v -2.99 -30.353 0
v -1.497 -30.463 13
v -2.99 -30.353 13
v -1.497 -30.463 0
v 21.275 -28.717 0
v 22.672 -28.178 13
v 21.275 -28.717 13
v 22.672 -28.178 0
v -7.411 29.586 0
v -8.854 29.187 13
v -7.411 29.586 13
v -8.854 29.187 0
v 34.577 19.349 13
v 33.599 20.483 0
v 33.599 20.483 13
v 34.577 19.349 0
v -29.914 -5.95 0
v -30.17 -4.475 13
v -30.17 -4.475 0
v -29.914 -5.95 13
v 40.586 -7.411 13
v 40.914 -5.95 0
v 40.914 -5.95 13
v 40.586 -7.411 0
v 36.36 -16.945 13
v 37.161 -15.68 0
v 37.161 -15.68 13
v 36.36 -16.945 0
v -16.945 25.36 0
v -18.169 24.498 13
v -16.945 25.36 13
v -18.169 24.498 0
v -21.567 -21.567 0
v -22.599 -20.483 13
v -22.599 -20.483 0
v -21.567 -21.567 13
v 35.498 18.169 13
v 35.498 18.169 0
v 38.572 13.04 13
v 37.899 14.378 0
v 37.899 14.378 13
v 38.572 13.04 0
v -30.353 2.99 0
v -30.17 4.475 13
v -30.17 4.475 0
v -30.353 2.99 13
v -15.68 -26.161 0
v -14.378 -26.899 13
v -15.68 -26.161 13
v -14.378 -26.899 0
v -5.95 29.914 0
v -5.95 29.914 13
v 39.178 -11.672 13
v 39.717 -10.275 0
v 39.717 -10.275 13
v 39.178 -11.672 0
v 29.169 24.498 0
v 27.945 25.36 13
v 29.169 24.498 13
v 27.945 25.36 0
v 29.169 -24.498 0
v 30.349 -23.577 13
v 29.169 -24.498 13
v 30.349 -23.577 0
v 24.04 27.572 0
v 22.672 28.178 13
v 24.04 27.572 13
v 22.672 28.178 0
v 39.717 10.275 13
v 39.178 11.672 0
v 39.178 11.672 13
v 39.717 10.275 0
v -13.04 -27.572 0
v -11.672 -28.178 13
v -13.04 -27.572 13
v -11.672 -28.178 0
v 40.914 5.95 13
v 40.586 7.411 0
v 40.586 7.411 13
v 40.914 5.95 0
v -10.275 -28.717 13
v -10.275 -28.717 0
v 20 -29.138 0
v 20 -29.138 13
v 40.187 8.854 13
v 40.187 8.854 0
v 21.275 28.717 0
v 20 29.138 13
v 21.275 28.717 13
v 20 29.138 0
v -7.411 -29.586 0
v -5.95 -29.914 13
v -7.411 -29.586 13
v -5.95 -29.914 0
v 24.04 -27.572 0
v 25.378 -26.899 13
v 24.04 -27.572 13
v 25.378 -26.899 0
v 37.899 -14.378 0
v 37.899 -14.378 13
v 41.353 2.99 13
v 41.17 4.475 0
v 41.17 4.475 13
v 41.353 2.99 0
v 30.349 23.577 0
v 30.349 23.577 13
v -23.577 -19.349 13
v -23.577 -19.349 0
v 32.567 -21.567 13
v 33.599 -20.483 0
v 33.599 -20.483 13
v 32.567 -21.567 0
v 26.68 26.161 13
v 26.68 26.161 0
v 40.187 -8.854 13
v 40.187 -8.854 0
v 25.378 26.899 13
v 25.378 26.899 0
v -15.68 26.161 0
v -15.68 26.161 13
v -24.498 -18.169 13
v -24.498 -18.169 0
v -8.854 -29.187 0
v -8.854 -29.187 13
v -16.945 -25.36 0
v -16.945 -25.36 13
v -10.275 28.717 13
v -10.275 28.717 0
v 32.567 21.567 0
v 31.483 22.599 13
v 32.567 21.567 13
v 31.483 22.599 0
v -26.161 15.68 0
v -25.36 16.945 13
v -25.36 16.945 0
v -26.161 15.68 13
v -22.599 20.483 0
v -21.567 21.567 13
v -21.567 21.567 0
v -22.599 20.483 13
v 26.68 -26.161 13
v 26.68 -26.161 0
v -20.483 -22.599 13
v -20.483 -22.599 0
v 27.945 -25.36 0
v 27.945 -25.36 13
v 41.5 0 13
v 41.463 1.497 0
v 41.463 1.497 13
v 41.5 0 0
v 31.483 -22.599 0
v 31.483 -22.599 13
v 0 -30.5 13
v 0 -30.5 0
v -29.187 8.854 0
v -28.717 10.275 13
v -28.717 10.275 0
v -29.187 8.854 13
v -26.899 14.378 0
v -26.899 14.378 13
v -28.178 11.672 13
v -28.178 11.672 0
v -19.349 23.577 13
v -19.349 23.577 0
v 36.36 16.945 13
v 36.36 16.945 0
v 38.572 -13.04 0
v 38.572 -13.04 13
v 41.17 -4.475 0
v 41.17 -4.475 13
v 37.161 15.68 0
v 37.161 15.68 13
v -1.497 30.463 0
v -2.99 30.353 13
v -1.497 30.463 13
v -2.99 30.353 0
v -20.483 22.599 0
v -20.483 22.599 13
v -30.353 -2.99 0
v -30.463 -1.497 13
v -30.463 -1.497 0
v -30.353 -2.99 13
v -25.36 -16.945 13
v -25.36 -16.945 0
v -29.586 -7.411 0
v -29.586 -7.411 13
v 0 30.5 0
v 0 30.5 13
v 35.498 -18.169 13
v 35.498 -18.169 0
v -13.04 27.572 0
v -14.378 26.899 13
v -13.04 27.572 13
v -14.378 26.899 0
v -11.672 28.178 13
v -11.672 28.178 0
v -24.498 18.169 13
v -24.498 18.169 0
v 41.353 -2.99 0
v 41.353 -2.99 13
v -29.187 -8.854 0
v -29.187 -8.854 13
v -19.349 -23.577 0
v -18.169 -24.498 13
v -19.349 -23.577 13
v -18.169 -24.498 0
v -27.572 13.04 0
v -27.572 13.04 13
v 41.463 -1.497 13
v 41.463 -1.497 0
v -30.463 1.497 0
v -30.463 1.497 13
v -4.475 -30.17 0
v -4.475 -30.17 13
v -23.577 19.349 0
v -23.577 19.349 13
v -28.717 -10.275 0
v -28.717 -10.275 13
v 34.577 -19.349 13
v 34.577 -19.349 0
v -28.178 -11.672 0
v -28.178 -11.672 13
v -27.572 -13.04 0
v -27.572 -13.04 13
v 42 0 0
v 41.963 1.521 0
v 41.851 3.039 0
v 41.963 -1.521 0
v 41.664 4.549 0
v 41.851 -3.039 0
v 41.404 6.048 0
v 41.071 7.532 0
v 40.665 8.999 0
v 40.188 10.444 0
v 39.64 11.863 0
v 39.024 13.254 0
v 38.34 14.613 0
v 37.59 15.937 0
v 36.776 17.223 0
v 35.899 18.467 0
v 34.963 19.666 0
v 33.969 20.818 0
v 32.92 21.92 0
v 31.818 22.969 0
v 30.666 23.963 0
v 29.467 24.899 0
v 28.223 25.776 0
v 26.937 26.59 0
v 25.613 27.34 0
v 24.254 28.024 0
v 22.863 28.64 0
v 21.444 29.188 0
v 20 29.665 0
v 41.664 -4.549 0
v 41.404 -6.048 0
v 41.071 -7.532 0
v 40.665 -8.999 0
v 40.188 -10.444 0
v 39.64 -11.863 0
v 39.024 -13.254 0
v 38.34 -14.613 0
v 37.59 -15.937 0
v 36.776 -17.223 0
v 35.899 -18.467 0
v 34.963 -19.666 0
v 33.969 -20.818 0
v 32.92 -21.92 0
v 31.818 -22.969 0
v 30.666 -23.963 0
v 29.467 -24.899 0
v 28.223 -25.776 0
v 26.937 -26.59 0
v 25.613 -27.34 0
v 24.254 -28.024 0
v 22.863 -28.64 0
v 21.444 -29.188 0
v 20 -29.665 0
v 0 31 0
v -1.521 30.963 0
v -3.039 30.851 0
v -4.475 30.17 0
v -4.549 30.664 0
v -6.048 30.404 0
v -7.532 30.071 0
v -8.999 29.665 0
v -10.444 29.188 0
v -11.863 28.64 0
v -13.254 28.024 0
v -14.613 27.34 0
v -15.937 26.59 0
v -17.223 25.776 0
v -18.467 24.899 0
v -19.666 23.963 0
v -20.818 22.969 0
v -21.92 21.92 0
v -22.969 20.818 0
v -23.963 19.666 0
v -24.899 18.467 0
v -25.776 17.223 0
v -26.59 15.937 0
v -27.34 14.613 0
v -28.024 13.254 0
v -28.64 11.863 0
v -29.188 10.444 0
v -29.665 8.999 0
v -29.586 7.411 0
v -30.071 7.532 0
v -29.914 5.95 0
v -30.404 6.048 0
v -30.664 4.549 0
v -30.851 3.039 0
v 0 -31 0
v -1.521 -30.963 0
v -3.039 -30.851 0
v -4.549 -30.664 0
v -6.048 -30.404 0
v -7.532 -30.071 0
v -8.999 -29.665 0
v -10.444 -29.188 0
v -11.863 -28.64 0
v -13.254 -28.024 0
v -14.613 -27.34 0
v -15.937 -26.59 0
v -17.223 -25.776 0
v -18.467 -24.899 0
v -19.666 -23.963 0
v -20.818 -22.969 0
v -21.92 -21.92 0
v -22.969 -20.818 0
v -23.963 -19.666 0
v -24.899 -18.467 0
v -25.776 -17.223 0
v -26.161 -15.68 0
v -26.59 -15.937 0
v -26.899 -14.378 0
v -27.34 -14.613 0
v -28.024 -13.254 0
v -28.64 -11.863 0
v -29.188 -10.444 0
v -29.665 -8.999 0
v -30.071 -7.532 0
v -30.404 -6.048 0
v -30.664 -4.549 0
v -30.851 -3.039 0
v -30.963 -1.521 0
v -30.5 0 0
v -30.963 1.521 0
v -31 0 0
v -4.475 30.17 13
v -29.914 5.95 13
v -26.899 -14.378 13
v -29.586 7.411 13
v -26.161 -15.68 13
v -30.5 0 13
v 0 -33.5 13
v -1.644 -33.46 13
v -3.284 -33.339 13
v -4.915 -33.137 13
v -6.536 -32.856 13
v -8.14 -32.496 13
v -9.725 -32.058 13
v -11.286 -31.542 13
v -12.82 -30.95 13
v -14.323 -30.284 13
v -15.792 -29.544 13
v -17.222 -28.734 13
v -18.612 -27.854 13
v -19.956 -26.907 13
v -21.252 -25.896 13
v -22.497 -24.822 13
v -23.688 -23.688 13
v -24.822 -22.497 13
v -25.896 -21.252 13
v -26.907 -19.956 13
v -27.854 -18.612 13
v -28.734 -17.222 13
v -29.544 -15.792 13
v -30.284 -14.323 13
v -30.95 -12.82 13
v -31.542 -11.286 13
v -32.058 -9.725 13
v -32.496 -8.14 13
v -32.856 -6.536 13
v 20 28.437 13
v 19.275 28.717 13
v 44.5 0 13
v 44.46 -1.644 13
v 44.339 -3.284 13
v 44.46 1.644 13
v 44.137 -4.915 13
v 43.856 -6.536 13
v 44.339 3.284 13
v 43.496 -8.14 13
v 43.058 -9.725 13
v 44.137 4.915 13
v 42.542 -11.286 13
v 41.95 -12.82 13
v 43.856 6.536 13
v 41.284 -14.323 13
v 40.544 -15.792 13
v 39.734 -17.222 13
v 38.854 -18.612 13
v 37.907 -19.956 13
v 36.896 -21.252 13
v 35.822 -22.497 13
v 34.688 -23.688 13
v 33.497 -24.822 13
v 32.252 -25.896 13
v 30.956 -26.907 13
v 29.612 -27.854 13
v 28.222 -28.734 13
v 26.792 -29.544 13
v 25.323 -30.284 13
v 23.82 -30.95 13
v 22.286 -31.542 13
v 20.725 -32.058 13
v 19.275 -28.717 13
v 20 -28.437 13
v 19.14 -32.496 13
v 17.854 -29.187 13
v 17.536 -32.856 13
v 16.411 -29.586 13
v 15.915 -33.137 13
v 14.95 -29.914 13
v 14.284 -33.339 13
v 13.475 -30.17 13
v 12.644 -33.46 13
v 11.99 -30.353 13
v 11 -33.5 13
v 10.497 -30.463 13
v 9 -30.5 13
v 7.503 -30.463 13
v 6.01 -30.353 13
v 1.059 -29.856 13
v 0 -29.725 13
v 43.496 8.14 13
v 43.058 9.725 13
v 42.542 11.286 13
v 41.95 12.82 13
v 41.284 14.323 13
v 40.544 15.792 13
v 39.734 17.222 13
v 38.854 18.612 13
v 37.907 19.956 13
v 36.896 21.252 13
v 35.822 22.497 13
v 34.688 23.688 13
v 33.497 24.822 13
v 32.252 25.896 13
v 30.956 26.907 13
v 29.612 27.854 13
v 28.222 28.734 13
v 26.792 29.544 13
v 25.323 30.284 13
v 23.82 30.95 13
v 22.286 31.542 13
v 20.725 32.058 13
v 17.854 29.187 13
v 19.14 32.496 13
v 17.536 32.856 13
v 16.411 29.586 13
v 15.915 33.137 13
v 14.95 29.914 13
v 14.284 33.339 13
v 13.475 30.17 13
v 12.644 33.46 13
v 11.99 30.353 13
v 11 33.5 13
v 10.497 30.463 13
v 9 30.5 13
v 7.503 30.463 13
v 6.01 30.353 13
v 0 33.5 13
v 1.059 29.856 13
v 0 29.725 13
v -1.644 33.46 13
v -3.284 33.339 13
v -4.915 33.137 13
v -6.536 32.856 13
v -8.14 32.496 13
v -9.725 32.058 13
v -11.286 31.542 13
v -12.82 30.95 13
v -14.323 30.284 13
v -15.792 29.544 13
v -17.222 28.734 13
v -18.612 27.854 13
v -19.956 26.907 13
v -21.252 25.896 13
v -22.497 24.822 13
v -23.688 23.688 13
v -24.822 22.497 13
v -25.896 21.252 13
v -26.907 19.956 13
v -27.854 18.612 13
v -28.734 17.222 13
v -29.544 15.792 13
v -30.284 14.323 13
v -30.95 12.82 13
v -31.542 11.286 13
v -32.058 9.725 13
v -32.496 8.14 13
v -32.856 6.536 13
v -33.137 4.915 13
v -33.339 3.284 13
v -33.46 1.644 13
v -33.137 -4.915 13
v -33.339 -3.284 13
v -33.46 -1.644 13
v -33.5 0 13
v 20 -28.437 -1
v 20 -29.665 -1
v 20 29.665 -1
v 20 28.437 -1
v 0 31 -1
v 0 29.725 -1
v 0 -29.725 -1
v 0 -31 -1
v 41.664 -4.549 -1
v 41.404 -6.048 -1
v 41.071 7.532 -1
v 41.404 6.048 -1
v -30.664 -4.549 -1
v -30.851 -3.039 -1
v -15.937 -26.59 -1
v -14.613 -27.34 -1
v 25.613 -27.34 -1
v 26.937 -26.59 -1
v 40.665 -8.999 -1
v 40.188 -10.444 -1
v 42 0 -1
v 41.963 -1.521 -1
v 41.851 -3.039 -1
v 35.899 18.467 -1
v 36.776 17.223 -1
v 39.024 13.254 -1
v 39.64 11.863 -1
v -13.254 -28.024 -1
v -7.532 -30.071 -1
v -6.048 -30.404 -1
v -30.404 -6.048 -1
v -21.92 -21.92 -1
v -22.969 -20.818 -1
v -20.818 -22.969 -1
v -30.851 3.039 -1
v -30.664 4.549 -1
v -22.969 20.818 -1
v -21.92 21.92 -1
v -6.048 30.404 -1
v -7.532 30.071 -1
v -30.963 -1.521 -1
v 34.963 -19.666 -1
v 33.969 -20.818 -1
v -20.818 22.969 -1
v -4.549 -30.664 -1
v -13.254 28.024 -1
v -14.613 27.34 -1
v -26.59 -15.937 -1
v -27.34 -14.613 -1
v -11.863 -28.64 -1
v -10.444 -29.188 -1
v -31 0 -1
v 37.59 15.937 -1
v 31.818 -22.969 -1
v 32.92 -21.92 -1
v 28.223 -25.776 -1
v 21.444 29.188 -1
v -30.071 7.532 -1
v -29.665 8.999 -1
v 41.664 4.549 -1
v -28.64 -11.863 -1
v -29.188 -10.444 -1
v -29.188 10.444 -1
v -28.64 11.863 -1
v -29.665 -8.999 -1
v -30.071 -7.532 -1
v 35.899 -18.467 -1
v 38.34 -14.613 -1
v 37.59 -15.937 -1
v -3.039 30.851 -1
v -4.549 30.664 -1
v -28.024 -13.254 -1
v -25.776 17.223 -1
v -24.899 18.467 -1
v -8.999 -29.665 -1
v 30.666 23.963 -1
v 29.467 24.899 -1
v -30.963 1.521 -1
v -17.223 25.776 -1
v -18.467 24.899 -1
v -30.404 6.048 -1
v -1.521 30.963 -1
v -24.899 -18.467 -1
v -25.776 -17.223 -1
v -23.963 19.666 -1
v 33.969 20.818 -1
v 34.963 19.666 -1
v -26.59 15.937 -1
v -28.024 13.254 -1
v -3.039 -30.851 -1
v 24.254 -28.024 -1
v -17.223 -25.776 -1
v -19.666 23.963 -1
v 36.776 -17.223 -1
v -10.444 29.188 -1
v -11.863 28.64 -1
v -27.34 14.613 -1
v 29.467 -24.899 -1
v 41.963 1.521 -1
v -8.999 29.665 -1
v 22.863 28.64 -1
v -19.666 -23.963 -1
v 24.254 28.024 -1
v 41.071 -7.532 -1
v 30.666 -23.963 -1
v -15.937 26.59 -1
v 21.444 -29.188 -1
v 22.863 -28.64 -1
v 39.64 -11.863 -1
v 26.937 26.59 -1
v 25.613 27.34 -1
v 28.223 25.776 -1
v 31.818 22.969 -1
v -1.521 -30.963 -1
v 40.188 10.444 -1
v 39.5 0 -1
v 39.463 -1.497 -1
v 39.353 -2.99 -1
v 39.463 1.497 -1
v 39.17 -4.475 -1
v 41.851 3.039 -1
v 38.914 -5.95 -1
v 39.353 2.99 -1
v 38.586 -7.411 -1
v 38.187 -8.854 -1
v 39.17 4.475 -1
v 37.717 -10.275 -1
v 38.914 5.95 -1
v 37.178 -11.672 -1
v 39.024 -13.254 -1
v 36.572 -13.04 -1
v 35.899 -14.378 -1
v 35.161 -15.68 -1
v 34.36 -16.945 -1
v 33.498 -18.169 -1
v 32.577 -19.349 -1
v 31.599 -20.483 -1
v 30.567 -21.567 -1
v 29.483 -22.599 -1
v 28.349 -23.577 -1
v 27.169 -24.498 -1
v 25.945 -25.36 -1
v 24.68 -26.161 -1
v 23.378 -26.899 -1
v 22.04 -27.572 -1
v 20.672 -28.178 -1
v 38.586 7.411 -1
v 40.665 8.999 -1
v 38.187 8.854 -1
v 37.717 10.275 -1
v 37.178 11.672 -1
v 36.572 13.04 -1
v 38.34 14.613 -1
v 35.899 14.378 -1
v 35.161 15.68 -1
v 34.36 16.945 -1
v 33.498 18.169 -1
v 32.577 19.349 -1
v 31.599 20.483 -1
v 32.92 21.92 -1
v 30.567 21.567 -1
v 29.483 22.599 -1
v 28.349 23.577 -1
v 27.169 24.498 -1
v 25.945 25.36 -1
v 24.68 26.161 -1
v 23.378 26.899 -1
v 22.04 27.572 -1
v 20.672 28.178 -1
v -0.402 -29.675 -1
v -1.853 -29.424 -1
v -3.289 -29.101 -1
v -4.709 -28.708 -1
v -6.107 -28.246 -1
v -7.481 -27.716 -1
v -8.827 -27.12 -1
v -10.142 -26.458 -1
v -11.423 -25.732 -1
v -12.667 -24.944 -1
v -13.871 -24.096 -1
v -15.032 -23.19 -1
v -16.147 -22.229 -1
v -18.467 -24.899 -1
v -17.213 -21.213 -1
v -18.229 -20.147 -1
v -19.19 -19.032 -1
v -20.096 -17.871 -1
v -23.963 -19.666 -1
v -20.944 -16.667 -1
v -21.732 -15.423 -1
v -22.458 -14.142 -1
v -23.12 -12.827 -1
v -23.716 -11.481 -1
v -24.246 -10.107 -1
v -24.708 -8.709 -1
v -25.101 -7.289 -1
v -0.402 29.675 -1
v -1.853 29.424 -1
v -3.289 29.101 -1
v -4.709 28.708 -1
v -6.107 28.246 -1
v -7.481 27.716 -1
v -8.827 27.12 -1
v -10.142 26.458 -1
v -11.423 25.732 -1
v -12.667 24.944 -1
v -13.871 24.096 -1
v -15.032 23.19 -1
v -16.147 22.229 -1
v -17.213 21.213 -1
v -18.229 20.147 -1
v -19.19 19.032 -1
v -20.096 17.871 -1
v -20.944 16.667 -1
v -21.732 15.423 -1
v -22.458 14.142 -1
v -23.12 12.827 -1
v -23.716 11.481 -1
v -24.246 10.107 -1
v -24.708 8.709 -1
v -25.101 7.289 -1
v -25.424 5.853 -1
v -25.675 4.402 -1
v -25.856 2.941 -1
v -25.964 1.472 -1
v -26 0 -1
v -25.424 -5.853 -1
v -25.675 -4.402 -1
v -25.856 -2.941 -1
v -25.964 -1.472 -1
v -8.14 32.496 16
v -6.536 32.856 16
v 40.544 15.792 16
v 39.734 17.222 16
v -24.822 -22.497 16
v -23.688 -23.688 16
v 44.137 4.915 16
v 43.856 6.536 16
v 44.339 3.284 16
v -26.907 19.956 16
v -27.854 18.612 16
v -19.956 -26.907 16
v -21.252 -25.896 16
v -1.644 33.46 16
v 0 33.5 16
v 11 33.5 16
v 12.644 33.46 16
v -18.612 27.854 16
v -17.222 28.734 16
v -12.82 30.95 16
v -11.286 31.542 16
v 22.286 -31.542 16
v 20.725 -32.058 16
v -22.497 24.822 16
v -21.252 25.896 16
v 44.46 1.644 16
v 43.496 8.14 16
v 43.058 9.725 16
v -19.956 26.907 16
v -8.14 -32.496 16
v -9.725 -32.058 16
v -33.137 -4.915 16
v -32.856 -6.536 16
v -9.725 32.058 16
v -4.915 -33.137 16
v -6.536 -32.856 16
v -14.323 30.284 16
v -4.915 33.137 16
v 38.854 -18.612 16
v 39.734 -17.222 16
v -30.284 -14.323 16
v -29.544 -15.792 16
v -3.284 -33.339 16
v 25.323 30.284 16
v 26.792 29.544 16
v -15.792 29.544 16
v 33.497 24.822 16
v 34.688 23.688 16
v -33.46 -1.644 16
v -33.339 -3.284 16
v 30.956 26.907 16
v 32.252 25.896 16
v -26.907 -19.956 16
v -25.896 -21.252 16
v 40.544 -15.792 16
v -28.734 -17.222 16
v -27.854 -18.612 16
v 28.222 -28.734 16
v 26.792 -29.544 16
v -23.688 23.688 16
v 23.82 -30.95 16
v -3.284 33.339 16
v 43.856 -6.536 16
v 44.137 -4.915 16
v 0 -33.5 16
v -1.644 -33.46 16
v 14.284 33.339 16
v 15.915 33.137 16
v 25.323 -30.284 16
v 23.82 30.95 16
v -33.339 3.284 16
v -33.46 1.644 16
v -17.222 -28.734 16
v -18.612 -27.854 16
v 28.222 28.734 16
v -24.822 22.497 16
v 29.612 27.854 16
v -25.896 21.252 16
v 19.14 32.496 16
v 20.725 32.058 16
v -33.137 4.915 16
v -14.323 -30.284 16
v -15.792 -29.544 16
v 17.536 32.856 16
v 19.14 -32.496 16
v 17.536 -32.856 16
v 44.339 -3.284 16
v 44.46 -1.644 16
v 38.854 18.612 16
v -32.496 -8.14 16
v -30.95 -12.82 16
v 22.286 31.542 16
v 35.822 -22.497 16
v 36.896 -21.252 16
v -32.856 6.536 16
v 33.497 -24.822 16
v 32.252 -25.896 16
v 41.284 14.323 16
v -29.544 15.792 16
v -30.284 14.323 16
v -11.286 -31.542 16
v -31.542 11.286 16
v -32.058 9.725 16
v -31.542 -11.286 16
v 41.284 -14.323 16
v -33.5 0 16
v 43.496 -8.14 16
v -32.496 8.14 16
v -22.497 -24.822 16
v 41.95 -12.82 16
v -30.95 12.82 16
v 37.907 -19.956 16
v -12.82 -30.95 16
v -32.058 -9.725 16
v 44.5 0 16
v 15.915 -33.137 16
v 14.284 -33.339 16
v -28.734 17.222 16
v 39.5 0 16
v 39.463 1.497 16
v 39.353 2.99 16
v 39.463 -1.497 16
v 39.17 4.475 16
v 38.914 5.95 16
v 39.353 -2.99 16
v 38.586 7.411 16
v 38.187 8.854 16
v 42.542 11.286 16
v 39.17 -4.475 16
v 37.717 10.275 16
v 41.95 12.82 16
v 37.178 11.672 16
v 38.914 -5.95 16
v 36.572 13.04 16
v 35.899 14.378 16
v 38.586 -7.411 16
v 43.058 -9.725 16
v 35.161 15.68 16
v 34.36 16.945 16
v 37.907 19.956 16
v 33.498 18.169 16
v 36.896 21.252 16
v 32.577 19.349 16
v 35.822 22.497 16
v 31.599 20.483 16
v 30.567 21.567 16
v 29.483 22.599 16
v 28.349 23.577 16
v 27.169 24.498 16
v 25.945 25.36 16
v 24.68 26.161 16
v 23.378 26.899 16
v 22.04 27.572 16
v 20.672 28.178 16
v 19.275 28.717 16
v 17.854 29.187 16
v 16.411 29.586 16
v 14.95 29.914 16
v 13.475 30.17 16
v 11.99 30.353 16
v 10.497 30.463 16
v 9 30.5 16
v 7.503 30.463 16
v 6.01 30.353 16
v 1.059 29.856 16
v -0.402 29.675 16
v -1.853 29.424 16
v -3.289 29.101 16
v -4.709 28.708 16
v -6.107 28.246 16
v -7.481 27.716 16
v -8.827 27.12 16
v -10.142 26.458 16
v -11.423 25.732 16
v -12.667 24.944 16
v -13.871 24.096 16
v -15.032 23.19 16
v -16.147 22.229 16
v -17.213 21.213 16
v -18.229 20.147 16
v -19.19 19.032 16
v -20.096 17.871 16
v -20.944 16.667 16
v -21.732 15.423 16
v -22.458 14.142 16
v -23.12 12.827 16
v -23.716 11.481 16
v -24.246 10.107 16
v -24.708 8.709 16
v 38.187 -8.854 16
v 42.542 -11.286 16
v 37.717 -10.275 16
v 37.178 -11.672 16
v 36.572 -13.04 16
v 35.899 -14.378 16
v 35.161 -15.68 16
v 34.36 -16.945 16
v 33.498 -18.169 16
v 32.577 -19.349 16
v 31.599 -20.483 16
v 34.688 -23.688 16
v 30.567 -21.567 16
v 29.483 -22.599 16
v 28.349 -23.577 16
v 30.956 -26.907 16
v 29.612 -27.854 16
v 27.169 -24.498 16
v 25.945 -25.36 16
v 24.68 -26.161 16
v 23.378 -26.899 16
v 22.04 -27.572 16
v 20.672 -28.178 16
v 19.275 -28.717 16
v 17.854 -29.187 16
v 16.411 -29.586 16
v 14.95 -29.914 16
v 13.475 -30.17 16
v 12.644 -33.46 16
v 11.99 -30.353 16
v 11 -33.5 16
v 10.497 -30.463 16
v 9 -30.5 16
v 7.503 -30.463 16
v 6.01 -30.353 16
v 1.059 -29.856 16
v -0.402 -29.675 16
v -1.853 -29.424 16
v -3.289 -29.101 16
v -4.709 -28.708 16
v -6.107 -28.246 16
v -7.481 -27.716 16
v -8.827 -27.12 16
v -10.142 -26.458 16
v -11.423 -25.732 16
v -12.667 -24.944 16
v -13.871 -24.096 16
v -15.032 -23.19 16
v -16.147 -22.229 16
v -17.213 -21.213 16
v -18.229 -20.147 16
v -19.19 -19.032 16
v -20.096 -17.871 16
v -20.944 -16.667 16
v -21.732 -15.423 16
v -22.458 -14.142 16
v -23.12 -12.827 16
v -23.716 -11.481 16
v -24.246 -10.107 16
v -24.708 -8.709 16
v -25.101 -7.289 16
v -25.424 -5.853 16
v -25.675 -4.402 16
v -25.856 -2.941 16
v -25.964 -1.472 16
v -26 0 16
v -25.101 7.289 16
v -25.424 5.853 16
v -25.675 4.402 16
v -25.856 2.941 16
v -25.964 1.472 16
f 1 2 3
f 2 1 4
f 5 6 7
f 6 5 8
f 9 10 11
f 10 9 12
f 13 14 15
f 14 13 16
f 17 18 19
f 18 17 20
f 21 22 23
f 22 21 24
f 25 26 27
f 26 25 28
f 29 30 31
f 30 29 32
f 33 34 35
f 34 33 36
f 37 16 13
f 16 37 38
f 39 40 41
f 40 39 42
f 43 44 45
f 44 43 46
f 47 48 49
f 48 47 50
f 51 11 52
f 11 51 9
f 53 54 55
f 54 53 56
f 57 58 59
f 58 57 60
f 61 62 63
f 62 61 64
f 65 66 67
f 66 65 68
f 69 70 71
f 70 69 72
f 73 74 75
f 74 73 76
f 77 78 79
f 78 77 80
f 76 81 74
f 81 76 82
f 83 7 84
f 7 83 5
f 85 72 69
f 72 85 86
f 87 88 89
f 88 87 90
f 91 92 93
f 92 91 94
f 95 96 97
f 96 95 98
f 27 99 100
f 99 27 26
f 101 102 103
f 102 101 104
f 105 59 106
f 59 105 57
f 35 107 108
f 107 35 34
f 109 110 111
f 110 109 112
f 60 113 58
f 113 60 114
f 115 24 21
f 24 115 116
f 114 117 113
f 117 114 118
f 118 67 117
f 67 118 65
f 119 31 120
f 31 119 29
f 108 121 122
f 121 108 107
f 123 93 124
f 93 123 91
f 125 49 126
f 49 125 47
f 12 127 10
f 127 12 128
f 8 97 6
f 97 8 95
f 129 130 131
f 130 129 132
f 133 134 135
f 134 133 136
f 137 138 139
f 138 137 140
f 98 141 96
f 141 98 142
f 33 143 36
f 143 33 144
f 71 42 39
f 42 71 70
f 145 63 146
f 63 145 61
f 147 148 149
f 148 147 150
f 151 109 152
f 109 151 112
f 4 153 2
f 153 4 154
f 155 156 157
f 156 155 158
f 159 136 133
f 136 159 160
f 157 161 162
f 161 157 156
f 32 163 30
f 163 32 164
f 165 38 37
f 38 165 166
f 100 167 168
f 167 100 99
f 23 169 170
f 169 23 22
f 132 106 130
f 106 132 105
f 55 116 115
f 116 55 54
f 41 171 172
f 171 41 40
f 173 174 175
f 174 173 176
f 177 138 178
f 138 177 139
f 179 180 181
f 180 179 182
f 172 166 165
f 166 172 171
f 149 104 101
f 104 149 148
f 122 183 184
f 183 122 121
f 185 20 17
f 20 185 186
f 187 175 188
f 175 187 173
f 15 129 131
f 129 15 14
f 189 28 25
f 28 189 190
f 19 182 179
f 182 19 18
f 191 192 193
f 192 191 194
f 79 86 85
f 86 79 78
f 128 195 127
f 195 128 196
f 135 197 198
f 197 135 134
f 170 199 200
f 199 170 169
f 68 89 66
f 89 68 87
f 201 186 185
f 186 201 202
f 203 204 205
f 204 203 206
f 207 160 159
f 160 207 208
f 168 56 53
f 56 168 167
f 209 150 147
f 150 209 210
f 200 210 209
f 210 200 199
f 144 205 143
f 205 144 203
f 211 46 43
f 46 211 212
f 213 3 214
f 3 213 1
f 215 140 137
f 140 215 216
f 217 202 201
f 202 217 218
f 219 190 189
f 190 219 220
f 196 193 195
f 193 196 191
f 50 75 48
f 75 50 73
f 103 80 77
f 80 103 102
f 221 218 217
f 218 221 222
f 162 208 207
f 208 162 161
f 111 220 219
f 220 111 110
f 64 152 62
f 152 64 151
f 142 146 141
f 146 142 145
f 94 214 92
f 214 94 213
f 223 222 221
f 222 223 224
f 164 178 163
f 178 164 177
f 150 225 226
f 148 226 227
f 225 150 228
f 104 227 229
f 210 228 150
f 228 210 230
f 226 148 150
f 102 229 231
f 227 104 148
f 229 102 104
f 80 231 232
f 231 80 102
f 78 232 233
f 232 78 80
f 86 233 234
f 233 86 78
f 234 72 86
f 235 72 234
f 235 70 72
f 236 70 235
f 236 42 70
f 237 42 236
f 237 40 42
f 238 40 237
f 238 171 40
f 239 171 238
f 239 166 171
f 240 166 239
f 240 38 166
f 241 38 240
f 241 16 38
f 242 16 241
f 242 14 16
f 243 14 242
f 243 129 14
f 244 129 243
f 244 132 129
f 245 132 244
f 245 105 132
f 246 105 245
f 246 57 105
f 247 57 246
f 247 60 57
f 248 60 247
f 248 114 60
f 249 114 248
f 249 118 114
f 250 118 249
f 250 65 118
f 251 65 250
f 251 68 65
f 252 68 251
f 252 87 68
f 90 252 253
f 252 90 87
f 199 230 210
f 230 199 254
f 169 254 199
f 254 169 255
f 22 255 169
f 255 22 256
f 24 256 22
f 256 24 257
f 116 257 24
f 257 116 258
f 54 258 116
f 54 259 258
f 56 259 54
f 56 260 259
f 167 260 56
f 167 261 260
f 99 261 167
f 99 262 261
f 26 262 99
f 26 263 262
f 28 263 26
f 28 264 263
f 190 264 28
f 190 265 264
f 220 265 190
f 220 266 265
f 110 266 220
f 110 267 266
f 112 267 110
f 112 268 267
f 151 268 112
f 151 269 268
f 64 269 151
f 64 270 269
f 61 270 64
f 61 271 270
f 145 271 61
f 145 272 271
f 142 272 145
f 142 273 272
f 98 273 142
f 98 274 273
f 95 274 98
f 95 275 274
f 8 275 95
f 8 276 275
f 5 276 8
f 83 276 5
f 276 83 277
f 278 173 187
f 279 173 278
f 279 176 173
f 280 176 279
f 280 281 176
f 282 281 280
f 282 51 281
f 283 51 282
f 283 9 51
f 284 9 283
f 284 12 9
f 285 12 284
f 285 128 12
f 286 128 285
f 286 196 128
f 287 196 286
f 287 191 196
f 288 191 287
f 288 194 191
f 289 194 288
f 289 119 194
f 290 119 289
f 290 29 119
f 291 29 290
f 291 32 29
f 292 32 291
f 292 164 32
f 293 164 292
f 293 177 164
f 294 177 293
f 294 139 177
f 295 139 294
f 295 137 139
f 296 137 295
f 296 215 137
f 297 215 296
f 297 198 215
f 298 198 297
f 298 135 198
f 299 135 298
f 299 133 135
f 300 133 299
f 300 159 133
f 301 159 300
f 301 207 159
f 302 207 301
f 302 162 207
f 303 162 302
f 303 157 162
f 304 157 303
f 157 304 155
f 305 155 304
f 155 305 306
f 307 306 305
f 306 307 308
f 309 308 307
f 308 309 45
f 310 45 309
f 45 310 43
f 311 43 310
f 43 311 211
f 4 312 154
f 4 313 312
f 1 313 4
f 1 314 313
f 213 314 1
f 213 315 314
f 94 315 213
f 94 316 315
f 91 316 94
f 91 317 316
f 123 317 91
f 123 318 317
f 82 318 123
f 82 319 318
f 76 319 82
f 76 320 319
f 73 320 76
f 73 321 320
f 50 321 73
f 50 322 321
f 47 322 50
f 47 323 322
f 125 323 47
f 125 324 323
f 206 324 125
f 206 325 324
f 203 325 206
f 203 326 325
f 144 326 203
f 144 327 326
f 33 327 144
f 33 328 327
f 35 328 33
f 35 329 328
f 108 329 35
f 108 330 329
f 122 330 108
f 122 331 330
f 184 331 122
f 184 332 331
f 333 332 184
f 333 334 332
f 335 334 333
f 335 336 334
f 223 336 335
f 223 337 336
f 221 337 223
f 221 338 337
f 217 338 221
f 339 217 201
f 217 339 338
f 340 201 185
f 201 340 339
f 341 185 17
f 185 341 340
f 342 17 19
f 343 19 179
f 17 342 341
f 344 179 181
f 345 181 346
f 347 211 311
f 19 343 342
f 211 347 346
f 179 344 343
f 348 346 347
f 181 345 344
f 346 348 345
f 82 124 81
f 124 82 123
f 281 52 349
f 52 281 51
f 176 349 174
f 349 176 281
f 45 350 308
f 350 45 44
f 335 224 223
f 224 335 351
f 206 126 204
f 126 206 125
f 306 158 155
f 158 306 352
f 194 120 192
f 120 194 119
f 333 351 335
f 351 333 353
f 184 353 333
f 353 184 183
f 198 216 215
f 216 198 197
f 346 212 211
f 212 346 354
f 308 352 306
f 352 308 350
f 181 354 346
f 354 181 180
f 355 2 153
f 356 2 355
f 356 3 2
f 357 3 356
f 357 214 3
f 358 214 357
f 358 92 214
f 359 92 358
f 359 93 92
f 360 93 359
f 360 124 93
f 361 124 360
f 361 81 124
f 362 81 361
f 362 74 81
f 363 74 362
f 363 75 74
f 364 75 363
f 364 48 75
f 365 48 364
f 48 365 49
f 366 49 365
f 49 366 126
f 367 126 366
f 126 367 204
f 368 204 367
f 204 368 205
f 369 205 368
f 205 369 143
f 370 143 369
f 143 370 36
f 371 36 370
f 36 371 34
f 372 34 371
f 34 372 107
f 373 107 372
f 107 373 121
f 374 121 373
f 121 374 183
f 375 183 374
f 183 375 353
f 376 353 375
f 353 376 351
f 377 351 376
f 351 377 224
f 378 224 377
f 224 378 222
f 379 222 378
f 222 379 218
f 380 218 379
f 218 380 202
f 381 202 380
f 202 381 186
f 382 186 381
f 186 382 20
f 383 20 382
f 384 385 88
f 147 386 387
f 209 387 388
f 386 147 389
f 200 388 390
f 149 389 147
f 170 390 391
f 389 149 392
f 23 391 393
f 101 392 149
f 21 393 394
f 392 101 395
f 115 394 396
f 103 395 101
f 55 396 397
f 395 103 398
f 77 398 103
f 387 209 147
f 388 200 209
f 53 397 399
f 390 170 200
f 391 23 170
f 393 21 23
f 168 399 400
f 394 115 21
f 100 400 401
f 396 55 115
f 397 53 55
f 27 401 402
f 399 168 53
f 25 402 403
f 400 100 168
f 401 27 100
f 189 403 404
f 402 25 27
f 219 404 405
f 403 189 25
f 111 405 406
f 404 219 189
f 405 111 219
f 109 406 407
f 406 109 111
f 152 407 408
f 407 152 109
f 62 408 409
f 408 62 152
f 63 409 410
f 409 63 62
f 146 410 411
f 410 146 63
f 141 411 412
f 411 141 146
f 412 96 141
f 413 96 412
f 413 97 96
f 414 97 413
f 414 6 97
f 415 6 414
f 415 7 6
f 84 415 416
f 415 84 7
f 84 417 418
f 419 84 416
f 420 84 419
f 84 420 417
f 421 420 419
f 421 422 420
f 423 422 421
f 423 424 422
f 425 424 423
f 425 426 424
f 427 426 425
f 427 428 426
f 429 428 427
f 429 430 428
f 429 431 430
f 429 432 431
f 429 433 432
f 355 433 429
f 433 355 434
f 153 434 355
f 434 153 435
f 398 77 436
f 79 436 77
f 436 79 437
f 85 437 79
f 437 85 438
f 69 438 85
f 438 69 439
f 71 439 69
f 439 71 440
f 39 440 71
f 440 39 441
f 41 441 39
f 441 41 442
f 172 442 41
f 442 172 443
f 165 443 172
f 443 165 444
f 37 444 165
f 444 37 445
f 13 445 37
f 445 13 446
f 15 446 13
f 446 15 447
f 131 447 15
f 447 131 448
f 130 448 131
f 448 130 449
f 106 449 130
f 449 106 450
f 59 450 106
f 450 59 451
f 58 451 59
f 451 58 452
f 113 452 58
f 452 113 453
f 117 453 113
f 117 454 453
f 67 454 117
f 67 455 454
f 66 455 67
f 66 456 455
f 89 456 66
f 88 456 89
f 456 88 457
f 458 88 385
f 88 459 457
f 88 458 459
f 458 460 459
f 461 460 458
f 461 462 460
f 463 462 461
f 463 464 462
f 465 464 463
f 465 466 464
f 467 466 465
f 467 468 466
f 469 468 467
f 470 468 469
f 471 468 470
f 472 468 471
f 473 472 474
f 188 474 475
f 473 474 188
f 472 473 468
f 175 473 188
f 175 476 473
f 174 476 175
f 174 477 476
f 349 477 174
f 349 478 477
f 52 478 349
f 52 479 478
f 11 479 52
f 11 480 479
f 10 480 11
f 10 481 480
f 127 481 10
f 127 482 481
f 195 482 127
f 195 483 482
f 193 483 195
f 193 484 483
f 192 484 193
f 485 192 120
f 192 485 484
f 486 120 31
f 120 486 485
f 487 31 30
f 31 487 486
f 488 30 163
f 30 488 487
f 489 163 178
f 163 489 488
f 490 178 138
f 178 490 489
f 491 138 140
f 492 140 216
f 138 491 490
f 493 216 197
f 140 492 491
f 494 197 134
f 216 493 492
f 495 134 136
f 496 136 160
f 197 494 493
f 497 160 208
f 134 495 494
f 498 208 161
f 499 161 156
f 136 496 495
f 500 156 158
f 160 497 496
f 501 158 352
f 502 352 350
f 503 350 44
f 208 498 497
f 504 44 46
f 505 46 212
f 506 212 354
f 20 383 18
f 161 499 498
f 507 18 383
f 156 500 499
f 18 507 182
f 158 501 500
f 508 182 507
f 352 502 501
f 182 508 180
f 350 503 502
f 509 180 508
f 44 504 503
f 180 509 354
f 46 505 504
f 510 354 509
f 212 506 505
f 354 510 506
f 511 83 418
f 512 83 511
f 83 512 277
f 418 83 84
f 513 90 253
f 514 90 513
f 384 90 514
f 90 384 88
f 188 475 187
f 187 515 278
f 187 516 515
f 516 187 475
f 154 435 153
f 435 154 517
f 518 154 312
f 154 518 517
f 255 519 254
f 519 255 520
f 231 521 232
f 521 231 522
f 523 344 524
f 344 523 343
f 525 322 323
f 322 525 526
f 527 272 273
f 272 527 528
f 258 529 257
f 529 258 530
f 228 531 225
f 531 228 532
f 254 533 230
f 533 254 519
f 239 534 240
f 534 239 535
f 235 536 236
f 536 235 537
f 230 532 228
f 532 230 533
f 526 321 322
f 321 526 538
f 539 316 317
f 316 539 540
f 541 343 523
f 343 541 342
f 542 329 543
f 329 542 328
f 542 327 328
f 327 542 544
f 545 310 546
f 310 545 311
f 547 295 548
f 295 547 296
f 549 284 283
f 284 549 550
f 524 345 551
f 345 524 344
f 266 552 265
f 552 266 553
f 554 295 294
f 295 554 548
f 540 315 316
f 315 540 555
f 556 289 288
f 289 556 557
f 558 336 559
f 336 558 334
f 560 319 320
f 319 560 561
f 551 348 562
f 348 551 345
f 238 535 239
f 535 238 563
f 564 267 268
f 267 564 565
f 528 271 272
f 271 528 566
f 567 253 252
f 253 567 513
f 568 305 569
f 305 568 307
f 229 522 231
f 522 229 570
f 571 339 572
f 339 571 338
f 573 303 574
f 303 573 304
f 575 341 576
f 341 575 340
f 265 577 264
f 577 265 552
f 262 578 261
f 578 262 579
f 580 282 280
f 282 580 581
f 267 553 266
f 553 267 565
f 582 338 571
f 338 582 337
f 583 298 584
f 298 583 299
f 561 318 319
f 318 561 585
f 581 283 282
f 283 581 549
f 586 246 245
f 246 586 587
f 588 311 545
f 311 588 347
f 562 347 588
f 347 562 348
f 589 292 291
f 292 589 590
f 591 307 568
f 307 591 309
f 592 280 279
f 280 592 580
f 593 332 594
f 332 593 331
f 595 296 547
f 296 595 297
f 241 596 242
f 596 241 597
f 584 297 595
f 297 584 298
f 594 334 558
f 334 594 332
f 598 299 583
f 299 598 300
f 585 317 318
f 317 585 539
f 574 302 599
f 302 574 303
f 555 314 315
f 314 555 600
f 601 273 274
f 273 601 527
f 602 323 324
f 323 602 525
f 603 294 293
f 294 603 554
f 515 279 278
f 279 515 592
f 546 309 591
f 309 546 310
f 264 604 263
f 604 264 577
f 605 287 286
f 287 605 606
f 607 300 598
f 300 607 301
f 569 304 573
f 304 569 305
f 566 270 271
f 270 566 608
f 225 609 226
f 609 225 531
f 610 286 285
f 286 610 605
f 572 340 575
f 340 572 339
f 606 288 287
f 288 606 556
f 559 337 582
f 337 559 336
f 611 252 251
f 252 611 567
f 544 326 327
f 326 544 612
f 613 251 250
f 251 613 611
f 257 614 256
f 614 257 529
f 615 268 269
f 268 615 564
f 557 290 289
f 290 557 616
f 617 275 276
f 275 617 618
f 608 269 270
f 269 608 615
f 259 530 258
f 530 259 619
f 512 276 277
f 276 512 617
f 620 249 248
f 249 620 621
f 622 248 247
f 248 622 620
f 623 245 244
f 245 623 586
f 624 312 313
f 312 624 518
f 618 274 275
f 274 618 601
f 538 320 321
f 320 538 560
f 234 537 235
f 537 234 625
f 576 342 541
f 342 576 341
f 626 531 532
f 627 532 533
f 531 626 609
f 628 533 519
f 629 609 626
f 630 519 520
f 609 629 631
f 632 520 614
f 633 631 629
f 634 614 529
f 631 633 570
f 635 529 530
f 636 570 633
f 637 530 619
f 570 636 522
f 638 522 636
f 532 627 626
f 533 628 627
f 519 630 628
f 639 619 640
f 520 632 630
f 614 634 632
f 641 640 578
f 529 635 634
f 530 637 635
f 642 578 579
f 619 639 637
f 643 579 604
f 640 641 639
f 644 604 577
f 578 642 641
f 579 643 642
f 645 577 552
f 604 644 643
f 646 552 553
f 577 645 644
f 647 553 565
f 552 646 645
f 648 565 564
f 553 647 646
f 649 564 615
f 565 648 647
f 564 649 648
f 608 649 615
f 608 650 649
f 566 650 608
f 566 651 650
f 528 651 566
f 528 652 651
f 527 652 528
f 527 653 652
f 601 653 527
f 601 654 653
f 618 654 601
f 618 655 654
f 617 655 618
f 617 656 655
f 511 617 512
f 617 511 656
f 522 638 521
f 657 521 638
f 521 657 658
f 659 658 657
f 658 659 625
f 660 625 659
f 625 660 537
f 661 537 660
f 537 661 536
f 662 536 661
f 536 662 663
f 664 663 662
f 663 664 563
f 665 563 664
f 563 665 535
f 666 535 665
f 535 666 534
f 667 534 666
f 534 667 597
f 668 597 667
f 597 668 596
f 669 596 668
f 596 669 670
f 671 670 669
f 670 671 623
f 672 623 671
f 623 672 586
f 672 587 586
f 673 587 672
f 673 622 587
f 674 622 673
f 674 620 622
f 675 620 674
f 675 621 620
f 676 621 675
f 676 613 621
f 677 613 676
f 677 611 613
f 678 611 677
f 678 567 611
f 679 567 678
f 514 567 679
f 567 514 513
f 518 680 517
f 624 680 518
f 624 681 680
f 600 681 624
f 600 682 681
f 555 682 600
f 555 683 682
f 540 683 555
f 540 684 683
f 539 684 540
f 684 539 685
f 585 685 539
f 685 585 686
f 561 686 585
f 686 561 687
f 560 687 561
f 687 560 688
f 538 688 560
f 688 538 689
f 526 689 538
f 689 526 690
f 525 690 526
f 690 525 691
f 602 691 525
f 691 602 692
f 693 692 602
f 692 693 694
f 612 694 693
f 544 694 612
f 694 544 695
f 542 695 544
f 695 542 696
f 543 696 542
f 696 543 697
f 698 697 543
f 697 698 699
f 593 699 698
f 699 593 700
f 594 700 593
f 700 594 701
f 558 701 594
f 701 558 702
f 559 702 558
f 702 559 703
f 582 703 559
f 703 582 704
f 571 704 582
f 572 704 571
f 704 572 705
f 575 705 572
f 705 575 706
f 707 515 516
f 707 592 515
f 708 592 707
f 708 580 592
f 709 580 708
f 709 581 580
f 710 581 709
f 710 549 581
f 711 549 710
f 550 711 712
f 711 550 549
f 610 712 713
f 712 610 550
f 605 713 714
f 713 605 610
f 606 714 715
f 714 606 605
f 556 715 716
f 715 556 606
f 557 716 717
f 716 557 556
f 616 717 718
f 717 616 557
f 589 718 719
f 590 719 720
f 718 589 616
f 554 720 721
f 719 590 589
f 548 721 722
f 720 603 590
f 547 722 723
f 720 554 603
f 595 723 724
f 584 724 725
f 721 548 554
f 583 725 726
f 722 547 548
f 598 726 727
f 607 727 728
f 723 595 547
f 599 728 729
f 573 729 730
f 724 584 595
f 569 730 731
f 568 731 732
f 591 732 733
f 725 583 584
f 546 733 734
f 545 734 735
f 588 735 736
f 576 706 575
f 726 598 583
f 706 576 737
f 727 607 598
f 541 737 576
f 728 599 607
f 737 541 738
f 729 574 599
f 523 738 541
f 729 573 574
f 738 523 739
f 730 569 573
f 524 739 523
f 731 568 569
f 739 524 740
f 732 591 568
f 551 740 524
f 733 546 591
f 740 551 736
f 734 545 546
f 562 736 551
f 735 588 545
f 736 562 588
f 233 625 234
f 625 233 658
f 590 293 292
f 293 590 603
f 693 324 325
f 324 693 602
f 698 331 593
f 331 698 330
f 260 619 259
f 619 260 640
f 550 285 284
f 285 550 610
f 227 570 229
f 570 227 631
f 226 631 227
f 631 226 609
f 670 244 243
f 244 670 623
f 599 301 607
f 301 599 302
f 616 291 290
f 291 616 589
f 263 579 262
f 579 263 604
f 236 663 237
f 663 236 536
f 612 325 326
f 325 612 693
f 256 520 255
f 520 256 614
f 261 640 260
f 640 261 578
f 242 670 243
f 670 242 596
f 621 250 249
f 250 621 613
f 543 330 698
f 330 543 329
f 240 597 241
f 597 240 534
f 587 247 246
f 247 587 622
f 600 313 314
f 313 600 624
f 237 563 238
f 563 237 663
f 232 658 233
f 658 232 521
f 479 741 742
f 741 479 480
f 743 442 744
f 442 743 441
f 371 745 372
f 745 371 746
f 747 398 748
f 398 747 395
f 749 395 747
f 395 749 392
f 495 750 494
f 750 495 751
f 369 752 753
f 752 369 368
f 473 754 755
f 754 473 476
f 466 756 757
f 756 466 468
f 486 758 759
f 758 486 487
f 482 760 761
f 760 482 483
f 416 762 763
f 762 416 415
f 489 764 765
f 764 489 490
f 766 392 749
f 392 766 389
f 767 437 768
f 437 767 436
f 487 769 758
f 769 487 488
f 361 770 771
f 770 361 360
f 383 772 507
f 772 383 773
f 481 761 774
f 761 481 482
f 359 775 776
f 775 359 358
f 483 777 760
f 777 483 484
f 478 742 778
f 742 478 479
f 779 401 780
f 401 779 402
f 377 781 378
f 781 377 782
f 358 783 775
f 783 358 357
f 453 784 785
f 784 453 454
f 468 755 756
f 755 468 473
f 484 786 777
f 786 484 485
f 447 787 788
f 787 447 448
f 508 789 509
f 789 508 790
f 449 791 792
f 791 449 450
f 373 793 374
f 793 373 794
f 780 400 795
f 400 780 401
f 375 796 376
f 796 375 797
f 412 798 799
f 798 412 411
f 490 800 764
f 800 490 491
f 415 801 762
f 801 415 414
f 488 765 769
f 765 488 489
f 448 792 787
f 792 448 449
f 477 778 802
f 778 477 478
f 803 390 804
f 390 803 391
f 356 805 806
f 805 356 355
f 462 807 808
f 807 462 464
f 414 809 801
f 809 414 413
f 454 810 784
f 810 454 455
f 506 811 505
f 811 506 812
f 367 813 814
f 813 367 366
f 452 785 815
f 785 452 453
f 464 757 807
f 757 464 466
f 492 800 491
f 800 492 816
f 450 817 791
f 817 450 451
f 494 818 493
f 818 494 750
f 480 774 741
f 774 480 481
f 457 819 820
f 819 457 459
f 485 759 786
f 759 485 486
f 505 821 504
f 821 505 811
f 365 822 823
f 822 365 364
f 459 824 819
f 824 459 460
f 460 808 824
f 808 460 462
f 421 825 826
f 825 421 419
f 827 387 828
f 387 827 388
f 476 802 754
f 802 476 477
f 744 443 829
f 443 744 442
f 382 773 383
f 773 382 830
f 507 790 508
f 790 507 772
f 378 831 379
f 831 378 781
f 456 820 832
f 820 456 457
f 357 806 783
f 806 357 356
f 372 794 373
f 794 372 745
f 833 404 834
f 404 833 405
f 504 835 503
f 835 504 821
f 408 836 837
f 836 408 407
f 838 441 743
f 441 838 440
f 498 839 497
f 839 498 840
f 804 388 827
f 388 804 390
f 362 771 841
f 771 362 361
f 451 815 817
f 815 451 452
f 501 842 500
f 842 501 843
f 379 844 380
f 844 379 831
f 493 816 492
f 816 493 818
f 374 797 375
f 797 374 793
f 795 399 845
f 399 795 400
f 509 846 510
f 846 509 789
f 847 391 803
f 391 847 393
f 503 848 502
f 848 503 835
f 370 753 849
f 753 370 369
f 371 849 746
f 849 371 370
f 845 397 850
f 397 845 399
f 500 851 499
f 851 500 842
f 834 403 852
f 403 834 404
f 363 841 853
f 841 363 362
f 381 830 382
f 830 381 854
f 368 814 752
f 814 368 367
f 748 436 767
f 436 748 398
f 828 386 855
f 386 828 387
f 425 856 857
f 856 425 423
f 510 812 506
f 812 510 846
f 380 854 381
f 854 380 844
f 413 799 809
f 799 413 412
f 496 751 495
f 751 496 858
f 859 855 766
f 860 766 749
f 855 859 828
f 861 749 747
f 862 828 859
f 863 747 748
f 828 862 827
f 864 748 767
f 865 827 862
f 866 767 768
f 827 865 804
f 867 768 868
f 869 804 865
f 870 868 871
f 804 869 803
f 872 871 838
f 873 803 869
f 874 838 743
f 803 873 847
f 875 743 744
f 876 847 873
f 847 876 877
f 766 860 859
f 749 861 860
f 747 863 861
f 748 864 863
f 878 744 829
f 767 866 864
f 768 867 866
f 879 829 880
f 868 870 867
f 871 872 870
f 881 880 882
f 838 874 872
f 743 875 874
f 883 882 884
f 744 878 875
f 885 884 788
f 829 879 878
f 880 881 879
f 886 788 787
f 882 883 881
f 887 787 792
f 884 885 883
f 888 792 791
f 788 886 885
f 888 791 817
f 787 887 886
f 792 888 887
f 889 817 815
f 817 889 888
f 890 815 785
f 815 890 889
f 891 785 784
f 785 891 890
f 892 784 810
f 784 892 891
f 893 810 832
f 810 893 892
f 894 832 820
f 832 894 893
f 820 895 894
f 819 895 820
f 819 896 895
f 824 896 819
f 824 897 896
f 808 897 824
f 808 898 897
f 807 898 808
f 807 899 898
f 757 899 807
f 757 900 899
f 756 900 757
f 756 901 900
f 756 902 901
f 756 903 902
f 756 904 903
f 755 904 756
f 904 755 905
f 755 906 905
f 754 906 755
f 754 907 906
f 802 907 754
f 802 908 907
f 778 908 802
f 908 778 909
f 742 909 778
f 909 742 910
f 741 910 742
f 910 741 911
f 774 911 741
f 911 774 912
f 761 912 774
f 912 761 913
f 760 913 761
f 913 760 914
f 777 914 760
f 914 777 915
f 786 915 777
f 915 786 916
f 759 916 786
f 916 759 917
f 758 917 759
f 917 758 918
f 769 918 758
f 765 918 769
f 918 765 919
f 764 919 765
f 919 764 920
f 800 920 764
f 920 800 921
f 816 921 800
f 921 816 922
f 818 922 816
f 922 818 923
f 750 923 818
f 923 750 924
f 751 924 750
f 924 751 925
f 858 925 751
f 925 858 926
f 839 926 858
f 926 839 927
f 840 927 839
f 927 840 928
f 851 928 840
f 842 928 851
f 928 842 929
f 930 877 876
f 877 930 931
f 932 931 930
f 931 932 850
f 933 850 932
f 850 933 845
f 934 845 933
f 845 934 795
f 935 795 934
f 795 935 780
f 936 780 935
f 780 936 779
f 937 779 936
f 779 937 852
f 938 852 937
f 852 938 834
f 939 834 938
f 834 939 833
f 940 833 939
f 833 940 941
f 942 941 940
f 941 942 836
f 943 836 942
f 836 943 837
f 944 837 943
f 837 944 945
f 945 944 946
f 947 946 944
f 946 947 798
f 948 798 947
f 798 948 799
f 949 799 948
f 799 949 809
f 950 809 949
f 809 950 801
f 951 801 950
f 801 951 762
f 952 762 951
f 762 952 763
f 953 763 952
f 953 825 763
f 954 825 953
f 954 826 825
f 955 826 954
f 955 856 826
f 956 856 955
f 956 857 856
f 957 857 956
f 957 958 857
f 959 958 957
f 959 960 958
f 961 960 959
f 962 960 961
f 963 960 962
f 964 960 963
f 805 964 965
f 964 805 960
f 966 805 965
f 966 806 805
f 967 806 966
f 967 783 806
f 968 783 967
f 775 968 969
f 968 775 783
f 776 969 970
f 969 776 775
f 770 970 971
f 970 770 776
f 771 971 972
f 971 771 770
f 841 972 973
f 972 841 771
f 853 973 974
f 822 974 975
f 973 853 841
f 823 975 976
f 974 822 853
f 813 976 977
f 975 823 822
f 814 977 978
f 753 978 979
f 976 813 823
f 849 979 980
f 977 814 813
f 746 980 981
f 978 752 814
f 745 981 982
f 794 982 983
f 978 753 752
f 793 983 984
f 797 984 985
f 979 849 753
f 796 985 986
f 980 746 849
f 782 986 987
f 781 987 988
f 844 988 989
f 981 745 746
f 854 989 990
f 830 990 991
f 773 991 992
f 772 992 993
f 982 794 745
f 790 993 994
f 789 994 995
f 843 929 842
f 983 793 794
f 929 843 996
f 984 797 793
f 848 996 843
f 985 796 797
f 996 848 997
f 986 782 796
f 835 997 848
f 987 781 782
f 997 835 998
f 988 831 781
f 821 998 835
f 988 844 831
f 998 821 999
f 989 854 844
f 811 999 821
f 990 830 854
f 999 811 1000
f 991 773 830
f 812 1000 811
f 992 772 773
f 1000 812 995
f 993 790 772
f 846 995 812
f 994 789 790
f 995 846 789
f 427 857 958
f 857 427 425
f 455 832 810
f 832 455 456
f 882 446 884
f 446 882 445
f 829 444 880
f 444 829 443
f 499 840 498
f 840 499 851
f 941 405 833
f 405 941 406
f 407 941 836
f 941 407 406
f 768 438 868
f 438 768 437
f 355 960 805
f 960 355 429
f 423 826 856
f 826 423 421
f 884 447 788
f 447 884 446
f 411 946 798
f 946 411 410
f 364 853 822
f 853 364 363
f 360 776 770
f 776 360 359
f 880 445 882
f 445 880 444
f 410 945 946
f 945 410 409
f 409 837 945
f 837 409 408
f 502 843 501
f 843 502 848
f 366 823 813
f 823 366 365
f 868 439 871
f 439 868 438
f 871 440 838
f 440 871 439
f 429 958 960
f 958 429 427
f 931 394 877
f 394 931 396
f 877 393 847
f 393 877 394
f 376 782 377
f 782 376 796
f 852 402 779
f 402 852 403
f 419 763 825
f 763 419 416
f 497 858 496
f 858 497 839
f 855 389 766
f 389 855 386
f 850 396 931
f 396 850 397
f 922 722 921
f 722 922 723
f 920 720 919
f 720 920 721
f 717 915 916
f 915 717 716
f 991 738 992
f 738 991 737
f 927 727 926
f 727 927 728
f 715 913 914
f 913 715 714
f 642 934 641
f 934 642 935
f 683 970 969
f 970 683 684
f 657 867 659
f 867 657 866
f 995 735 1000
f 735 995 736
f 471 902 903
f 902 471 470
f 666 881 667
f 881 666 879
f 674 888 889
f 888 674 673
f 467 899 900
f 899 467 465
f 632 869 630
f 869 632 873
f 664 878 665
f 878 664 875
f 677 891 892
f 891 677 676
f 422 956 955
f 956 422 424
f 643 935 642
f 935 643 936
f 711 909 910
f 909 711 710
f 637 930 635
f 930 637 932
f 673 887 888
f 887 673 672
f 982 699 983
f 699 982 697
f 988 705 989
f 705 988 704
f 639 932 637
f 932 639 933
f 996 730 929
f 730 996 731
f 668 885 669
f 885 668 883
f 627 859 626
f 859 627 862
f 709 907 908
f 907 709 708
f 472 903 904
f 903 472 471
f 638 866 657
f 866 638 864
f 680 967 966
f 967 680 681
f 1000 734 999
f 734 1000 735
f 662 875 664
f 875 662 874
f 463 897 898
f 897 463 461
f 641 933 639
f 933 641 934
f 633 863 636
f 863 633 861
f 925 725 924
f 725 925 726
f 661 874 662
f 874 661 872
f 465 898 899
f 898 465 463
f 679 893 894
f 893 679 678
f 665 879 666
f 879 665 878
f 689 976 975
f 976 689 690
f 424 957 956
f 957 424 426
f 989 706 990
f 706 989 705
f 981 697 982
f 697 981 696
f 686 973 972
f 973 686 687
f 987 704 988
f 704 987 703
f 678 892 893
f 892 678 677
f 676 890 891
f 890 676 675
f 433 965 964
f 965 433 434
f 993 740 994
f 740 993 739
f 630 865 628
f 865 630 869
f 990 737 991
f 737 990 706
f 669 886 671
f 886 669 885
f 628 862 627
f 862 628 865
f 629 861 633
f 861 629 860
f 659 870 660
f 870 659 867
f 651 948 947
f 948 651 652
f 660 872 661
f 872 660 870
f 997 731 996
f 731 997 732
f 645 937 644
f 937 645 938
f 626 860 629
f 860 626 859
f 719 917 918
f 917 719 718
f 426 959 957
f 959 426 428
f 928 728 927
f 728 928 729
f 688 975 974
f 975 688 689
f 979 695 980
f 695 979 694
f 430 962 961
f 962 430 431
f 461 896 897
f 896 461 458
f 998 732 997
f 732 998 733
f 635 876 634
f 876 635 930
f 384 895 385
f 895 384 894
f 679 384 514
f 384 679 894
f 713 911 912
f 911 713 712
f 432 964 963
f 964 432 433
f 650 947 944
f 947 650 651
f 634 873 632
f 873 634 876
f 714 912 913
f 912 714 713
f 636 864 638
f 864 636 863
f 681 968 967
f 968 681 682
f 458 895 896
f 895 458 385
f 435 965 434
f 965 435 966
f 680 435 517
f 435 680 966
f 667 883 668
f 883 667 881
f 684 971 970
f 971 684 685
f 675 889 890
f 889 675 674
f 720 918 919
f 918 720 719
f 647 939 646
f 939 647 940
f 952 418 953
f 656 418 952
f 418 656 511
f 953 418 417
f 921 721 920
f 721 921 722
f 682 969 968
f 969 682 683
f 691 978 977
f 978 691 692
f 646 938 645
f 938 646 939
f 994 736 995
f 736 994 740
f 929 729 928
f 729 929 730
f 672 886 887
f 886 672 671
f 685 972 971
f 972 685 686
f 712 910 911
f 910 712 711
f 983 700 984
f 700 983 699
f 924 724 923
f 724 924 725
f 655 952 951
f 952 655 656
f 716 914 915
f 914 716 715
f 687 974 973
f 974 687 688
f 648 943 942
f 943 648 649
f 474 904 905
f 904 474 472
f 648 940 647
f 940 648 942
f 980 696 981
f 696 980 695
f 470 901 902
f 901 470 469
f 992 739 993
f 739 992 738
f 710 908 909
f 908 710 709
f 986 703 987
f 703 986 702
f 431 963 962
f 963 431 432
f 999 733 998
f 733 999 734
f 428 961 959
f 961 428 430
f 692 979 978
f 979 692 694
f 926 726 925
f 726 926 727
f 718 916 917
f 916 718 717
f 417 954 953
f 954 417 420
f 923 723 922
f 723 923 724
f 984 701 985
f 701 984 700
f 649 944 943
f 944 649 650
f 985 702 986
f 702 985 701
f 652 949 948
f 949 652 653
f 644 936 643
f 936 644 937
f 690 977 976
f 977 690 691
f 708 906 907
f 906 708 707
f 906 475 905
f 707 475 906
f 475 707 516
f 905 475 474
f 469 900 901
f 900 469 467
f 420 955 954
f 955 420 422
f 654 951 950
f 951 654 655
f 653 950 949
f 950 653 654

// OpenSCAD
olength = 72;
owidth = 61;
odepth = 13;

$fn = 128;

difference() {
  union() {
    // Base that lives in the hole
    difference() {
      hull() {
        cylinder(d=owidth, h=odepth);
        translate([olength - owidth,0,0]) cylinder(d=owidth, h=odepth);
      }

      // Fully cut out some of the sides.
      translate([0,-owidth/2-1,-1]) cube([20, owidth+2, odepth+1]);
    }

    // A brim on top of the base to not fall through.
    hull() {
      translate([0,0,odepth]) cylinder(d=owidth+6, h=3);
      translate([olength - owidth, 0, odepth]) cylinder(d=owidth+6, h=3);
    }

    // Add a brim to the bottom to fix the item in place better.
    difference() {
      hull() {
        translate([0,0,-1]) cylinder(d=owidth+1, h=1);
        translate([olength-owidth,0,-1]) cylinder(d=owidth+1, h=1);
      }
      // Fully cut out some of the sides in the bottom brim.
      translate([0,-owidth/2-1,-2]) cube([20, owidth+2, odepth+1]);
    }
  }

  // Hole to cut out of the base and the brim.
  hull() {
    translate([4,0,-2]) cylinder(d=60, h=odepth+6);
    translate([9,0,-2]) cylinder(d=61, h=odepth+6);
  }
}
